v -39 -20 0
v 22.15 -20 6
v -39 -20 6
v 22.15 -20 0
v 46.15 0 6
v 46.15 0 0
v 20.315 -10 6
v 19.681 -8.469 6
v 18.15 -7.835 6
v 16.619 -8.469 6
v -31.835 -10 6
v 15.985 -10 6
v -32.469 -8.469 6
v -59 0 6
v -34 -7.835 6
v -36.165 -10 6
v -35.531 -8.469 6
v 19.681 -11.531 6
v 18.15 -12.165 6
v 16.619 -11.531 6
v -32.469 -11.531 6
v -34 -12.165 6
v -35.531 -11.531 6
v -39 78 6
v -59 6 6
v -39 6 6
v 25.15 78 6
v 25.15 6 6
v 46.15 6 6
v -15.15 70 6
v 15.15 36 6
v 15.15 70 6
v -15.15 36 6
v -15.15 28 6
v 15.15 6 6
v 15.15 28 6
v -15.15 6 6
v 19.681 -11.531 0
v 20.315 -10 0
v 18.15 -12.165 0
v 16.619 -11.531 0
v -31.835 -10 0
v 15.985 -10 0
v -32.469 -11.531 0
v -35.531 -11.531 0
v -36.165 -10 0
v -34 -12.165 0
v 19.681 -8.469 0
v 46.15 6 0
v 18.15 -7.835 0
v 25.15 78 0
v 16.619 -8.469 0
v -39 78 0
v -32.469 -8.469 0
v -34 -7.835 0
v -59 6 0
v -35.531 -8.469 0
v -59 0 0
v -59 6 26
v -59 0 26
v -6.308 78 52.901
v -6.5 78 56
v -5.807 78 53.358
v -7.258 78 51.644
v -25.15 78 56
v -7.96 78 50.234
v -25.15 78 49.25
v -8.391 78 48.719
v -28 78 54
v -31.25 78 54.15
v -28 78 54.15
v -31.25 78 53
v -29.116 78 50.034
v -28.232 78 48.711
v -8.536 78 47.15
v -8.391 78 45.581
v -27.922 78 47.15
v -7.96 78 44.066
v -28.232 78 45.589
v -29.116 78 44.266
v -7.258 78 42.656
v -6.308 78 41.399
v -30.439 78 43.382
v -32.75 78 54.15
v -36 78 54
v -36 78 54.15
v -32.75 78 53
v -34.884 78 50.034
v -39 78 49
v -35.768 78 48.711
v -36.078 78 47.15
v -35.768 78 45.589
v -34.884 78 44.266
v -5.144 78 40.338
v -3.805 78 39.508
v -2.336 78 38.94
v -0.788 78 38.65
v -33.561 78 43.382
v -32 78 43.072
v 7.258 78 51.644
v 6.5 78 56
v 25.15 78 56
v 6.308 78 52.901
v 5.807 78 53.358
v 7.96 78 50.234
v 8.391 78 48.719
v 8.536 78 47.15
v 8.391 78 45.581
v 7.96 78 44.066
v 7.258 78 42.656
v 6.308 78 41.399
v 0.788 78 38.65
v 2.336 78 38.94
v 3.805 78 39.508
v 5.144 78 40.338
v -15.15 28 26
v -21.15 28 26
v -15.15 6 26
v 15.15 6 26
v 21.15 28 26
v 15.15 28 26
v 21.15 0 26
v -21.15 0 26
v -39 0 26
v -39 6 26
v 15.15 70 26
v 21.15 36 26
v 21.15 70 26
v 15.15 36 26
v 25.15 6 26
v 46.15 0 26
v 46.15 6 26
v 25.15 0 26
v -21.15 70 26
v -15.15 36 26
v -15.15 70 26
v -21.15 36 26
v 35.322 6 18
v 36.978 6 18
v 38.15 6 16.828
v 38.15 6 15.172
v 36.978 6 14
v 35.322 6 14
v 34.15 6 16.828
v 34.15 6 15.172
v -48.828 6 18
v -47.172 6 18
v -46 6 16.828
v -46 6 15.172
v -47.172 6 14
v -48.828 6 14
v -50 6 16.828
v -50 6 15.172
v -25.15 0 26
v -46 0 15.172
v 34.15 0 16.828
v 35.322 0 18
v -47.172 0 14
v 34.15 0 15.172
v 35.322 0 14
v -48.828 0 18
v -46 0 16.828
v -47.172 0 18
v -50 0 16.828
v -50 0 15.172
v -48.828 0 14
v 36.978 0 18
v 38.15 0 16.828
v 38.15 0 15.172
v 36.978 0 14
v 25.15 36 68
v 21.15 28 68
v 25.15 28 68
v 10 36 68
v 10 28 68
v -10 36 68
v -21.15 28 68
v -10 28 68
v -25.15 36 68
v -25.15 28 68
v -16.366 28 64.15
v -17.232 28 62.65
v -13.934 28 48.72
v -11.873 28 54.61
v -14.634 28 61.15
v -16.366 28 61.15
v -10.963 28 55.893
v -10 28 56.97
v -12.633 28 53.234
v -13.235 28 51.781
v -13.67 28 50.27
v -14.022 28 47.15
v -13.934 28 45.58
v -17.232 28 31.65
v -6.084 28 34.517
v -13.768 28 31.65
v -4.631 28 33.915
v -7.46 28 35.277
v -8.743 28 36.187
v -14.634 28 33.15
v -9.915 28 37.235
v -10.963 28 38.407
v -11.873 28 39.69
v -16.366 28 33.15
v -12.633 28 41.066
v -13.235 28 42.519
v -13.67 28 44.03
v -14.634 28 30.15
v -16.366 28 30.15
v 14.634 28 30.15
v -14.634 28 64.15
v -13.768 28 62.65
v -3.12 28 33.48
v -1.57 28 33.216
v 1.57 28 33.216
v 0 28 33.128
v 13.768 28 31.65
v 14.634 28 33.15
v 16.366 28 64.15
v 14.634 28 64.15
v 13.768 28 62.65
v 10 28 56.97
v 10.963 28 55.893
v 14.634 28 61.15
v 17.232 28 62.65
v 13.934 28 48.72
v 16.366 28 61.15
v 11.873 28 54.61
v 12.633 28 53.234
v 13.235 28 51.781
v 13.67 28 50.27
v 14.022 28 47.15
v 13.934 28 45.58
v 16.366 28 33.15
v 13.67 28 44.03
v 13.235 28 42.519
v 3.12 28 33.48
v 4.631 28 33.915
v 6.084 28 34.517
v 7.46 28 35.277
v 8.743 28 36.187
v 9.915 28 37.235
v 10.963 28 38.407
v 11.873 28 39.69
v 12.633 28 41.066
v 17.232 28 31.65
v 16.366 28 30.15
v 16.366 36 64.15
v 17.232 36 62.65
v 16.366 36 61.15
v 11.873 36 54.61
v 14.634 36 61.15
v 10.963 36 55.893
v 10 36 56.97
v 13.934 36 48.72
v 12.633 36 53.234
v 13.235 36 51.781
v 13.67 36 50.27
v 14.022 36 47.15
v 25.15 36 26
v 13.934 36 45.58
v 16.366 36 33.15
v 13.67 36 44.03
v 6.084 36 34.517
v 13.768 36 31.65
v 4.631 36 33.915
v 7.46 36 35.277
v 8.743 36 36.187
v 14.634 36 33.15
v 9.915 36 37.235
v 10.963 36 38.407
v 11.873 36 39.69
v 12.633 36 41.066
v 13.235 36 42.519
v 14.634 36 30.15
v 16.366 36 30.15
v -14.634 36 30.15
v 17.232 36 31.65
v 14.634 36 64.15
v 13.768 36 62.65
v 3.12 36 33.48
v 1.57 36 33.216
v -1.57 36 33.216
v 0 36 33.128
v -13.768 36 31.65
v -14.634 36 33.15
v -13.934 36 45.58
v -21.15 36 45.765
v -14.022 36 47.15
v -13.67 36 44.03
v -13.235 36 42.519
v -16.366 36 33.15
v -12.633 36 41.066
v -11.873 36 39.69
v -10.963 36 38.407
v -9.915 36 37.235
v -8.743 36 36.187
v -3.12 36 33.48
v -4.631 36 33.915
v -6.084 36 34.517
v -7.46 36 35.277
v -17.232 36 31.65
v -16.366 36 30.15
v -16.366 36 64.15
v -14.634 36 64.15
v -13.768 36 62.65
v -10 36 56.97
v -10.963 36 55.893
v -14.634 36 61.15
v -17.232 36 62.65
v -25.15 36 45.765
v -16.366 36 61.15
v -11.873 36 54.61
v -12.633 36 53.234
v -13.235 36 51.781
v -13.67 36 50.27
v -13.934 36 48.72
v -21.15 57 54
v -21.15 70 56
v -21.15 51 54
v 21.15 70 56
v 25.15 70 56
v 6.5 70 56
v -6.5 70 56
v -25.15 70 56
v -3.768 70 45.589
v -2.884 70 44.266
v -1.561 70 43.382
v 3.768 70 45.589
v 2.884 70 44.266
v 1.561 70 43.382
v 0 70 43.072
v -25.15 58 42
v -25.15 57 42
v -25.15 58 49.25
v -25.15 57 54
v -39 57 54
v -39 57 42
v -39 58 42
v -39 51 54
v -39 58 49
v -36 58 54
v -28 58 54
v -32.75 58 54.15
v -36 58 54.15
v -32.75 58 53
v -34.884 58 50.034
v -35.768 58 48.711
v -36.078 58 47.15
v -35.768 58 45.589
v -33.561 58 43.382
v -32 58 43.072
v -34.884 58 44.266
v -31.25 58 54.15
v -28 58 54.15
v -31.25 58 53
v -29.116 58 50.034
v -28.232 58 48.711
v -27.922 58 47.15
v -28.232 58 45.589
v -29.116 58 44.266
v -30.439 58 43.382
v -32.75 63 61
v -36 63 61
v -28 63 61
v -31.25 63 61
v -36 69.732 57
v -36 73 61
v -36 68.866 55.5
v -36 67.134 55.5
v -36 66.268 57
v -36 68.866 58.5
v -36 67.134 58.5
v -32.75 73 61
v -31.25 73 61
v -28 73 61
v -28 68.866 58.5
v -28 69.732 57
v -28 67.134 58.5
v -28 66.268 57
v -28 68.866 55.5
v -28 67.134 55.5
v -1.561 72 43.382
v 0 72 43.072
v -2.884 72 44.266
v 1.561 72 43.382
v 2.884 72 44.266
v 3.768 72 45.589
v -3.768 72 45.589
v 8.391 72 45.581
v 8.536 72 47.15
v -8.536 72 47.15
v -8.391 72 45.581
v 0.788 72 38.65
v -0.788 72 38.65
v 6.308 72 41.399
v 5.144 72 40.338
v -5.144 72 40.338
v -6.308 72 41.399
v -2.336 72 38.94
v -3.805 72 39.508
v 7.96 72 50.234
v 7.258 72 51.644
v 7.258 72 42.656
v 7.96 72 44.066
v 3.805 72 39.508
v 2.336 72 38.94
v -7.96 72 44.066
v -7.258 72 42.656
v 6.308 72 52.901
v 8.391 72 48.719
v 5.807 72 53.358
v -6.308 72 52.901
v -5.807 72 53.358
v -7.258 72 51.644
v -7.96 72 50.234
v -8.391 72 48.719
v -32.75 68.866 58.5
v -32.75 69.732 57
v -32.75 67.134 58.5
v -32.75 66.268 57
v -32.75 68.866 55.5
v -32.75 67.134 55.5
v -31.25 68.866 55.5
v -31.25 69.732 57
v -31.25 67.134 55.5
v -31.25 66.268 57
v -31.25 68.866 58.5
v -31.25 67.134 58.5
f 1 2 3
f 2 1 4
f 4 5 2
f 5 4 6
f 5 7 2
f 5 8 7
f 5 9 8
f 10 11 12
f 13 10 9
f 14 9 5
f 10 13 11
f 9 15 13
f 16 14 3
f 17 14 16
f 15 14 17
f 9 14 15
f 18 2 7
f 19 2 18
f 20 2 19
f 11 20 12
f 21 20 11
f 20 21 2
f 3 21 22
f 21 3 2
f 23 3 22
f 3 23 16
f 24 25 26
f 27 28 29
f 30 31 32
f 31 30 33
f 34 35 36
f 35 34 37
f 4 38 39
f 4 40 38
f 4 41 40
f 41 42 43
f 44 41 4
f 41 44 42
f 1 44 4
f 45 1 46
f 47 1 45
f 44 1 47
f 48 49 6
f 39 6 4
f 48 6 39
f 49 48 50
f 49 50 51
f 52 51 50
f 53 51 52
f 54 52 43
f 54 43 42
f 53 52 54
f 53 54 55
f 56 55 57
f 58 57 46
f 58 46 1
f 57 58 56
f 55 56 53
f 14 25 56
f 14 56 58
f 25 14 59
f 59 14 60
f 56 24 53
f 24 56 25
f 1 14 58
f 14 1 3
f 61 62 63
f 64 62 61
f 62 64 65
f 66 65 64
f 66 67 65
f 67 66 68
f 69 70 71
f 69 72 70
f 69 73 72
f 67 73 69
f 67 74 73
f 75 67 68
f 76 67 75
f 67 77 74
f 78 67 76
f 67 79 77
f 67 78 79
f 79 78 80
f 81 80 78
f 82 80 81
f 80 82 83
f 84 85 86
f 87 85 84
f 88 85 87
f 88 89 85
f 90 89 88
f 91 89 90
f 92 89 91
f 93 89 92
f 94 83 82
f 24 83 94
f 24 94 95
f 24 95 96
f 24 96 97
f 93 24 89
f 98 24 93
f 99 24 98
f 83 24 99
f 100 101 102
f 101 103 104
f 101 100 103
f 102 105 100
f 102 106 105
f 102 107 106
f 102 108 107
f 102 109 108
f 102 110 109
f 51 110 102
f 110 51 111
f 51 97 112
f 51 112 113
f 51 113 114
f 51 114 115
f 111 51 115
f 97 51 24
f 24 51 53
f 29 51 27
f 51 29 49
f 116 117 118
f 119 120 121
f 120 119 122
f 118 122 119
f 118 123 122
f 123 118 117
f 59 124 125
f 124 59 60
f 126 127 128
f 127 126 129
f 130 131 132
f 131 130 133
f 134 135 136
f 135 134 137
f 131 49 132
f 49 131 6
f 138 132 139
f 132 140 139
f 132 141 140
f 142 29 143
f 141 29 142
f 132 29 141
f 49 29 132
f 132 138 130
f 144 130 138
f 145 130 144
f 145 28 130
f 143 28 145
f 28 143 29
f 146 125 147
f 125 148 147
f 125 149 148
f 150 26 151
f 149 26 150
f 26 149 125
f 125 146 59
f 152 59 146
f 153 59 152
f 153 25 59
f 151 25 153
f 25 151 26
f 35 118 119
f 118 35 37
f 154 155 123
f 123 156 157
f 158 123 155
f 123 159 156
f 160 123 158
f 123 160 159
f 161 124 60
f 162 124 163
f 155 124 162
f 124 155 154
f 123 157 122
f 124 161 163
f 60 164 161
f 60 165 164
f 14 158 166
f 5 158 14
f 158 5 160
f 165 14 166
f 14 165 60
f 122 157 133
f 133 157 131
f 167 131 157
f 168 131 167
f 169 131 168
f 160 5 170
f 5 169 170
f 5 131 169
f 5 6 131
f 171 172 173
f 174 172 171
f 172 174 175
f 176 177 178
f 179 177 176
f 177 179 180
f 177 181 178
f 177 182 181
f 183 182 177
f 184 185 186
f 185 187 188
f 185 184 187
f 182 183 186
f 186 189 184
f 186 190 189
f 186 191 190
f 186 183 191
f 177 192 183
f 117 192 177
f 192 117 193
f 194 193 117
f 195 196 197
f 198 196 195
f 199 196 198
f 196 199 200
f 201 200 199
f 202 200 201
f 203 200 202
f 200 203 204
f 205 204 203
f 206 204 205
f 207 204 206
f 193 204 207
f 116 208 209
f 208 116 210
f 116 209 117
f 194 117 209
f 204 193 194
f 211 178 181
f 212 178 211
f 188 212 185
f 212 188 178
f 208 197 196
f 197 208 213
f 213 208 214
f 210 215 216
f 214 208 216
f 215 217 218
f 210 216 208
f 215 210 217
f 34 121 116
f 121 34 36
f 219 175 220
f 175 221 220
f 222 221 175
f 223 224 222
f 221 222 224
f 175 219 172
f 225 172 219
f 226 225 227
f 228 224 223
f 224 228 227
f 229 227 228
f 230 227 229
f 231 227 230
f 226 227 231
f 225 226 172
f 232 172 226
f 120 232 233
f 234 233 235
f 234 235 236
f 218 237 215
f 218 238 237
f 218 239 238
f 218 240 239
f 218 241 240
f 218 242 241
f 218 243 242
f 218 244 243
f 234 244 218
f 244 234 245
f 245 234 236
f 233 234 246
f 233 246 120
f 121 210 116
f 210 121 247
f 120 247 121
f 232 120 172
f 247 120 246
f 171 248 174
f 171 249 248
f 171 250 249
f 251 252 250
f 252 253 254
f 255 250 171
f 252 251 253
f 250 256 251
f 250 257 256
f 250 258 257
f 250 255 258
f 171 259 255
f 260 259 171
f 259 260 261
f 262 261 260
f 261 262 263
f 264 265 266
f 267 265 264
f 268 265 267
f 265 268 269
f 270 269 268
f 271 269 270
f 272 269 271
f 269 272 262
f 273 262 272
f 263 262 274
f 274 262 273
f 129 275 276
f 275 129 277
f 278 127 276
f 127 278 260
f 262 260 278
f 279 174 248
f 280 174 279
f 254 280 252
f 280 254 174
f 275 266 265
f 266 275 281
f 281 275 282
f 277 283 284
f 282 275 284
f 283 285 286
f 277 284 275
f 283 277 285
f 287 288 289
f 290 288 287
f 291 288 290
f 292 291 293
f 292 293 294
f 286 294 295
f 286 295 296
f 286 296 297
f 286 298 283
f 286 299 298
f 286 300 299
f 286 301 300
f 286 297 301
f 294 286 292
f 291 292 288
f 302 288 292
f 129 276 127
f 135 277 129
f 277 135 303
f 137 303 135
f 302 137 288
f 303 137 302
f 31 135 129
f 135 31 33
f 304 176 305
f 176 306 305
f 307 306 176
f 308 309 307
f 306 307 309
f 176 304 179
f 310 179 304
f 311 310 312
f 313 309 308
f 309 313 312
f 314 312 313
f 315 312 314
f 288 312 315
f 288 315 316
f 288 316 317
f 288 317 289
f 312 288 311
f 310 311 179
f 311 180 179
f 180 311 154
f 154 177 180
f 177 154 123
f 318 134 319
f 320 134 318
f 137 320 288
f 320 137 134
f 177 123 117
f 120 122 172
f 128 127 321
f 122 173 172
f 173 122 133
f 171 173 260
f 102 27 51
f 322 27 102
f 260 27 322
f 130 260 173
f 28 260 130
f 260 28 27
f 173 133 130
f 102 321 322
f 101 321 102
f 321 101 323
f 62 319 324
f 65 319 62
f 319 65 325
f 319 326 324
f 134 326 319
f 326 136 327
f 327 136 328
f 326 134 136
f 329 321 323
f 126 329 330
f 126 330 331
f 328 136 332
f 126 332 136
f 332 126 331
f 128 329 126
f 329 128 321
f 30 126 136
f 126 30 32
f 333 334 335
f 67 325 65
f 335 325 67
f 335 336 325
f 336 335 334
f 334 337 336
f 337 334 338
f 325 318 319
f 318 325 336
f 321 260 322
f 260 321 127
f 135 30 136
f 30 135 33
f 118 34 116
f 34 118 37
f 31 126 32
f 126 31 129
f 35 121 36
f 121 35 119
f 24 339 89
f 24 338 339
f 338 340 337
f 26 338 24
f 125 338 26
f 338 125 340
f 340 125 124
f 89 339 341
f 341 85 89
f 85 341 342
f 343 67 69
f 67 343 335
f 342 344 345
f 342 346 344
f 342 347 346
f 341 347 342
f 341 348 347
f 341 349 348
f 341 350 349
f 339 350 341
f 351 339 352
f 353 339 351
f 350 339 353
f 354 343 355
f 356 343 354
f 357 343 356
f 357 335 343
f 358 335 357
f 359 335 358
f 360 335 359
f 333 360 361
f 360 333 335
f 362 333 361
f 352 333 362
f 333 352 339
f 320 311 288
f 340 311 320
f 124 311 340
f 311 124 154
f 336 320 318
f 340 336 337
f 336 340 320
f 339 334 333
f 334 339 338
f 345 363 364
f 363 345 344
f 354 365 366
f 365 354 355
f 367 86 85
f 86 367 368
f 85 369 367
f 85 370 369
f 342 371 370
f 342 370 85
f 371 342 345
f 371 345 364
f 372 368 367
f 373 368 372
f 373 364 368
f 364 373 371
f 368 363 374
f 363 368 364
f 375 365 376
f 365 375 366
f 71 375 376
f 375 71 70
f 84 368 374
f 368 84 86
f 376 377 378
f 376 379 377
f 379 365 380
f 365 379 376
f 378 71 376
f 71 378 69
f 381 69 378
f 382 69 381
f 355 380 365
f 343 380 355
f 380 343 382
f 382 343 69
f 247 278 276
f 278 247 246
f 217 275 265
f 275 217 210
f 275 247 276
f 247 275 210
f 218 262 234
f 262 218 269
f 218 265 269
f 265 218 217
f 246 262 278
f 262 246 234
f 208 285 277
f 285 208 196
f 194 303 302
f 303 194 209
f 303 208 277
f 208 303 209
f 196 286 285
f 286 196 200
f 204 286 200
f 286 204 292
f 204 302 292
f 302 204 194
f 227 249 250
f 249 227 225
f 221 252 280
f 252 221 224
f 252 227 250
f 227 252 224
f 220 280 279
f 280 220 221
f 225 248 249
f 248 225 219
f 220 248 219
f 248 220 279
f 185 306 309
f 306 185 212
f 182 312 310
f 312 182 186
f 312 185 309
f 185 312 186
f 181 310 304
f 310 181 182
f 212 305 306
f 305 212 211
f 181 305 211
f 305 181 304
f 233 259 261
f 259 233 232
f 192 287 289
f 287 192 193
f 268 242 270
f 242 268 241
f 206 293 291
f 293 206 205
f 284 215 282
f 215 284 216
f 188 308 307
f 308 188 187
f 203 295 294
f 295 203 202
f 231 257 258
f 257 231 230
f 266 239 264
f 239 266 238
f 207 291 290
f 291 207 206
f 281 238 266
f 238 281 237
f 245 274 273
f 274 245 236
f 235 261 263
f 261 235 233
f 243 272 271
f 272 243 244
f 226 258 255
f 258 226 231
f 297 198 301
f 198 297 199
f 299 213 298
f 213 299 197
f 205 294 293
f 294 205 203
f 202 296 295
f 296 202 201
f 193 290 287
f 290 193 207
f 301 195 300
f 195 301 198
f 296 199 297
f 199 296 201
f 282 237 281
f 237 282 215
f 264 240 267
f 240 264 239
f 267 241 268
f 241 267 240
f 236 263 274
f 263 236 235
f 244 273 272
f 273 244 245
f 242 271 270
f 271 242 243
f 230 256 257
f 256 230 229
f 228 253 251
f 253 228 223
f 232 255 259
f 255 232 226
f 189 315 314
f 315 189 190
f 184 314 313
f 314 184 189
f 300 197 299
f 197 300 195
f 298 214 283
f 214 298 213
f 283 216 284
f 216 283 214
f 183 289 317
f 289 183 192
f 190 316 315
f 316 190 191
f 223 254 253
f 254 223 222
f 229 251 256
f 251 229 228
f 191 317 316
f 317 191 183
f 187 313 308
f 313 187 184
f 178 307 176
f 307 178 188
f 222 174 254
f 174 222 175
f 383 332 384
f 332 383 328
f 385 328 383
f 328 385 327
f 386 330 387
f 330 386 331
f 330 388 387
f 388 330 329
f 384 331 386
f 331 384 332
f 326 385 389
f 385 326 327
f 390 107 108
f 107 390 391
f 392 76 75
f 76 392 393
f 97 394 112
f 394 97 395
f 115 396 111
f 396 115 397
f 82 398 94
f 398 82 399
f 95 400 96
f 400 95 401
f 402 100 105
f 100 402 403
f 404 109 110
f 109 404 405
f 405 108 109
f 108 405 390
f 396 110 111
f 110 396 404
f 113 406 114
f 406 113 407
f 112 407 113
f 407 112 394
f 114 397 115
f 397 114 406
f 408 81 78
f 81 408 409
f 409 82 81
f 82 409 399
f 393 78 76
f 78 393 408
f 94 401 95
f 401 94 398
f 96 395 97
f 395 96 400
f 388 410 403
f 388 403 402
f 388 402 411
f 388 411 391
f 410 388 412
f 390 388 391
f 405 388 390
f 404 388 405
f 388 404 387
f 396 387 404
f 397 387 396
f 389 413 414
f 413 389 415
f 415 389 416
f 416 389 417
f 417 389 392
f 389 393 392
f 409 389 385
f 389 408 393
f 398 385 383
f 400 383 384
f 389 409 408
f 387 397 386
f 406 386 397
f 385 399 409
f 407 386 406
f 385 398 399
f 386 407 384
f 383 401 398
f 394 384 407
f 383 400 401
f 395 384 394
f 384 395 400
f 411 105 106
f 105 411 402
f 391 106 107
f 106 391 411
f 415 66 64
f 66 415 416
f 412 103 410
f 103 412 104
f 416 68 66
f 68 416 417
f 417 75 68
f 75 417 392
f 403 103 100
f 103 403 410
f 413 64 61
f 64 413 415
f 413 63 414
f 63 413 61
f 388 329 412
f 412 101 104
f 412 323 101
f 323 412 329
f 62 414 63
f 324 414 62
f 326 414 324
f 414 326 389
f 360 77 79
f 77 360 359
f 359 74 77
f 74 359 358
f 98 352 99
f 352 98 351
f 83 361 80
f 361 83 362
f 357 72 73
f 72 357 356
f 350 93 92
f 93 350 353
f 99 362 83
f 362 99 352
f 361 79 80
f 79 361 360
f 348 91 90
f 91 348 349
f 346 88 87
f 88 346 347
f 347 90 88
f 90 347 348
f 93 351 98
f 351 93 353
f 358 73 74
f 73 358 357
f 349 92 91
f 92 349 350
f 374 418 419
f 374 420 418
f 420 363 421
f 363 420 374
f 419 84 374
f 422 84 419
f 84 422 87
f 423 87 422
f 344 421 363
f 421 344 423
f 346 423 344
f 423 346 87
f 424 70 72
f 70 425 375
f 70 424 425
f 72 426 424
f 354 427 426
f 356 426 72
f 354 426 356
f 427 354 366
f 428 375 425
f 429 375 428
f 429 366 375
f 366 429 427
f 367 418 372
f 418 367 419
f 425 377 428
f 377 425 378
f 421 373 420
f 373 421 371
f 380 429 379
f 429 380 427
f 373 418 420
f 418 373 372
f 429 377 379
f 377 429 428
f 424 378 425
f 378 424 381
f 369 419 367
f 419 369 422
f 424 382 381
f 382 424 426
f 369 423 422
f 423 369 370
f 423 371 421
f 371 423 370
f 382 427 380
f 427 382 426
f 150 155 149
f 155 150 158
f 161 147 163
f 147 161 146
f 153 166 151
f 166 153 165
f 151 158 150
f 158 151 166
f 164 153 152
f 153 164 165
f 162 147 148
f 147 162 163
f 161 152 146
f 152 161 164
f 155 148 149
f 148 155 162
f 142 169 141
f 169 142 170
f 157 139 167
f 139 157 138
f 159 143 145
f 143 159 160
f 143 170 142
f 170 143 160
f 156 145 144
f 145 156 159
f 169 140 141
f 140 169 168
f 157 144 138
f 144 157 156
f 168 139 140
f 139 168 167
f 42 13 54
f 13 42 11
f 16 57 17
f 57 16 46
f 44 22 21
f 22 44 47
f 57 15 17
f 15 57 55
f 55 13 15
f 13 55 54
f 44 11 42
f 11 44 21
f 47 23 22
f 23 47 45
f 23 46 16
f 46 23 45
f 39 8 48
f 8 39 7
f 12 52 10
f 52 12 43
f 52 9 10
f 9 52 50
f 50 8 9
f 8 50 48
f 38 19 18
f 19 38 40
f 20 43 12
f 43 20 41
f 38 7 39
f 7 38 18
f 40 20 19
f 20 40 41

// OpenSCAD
// file: polyhole.scad
// The Cylinder is dead! Long live the Cylinder!
// A module for a polyhole by radius, based on Nophead's work.

module polyhole(h, r, cent = false)
{
    n = max(round(4 * r), 3);
    cylinder(h = h, r = r / cos(180 / n), $fn = n, center = cent);
}
// main file
// A piece that holds one z-axis motor, one leadscrew, and one rod.

use<polyhole.scad>

ZBottomMotor();

module ZBottomMotor()
{
    difference()
    {
        union()
        {
            linear_extrude(height = 6)
                polygon([[-39, -20], [22.15, -20], [46.15, 0], [46.15, 6], [25.15, 78], [-39, 78], [-59, 6], [-59, 0]]);
            translate([-6.425, 3, 13])
                cube([105.15, 6, 26], center = true);
            translate([0, 32, 37])
                cube([44, 8, 62], center = true);
            hull()
            {
                translate([-23.15, 32, 37])
                    cube([4, 8, 62], center = true);
                translate([-23.15, 3, 16])
                    cube([4, 6, 20], center = true);
            }
            hull()
            {
                translate([23.15, 32, 37])
                    cube([4, 8, 62], center = true);
                translate([23.15, 3, 16])
                    cube([4, 6, 20], center = true);
            }
            translate([0, 74, 28])
                cube([42.3, 8, 56], center = true);
            hull()
            {
                translate([-23.15, 74, 28])
                    cube([4, 8, 56], center = true);
                translate([-23.15, 60, 27])
                    cube([4, 6, 54], center = true);
            }
            hull()
            {
                translate([23.15, 74, 28])
                    cube([4, 8, 56], center = true);
                translate([23.15, 40, 16])
                    cube([4, 8, 20], center = true);
            }
            translate([-18.15, 39, 16])
                cube([6, 78, 20], center = true);
            translate([18.15, 39, 16])
                cube([6, 78, 20], center = true);
            hull()
            {
                translate([-32, 68, 26])
                    cube([14, 20, 46], center = true);
                translate([-32, 68, 31])
                    cube([8, 20, 46], center = true);
            }
            hull()
            {
                translate([-22.15, 54, 27])
                    cube([2, 6, 54], center = true);
                translate([-38, 54, 27])
                    cube([2, 6, 54], center = true);
                translate([-22.15, 3, 13])
                    cube([2, 6, 26], center = true);
                translate([-38, 3, 13])
                    cube([2, 6, 26], center = true);
            }
            hull()
            {
                translate([-22.15, 66, 21])
                    cube([2, 24, 42], center = true);
                translate([-38, 66, 21])
                    cube([2, 24, 42], center = true);
            }
            hull()
            {
                translate([-32, 68, 53.15])
                    cube([8, 20, 2], center = true);
                translate([-32, 68, 60])
                    cube([8, 10, 2], center = true);
            }
        }
        translate([15.5, 28, 31.65])
            rotate([-90, 0, 0])
                polyhole(8, 1.5);
        translate([-15.5, 28, 31.65])
            rotate([-90, 0, 0])
                polyhole(8, 1.5);
        translate([15.5, 28, 62.65])
            rotate([-90, 0, 0])
                polyhole(8, 1.5);
        translate([-15.5, 28, 62.65])
            rotate([-90, 0, 0])
                polyhole(8, 1.5);
        translate([0, 28, 47.15])
            rotate([-90, 0, 0])
                polyhole(8, 14);
        translate([0, 32, 67])
            cube([20, 8, 40], center = true);
        translate([0, 70, 47.15])
            rotate([-90, 0, 0])
                polyhole(8, 4);
        translate([0, 72, 47.15])
            rotate([-90, 0, 0])
                polyhole(6, 8.5);
        hull()
        {
            translate([0, 70, 47.15])
                rotate([-90, 0, 0])
                    polyhole(8, 4);
            translate([0, 74, 57])
                cube([13, 8, 2], center= true);
        }
        hull()
        {
            translate([-32, 58, 47.15])
                rotate([-90, 0, 0])
                    polyhole(20, 4);
            translate([-32, 68, 52])
                cube([1.5, 20, 2], center = true);
        }
        translate([-32, 68, 56])
            cube([1.5, 20, 16], center = true);
        translate([-36, 68, 57])
            rotate([90, 0, 90])
                polyhole(8, 1.5);
        translate([-48, 0, 16])
            rotate([-90, 22.5, 0])
                polyhole(7, 2);
        translate([36.15, 0, 16])
            rotate([-90, 22.5, 0])
                polyhole(7, 2);
        translate([-34, -10, 0])
            polyhole(7, 2);
        translate([18.15, -10, 0])
            polyhole(7, 2);
    }
}
